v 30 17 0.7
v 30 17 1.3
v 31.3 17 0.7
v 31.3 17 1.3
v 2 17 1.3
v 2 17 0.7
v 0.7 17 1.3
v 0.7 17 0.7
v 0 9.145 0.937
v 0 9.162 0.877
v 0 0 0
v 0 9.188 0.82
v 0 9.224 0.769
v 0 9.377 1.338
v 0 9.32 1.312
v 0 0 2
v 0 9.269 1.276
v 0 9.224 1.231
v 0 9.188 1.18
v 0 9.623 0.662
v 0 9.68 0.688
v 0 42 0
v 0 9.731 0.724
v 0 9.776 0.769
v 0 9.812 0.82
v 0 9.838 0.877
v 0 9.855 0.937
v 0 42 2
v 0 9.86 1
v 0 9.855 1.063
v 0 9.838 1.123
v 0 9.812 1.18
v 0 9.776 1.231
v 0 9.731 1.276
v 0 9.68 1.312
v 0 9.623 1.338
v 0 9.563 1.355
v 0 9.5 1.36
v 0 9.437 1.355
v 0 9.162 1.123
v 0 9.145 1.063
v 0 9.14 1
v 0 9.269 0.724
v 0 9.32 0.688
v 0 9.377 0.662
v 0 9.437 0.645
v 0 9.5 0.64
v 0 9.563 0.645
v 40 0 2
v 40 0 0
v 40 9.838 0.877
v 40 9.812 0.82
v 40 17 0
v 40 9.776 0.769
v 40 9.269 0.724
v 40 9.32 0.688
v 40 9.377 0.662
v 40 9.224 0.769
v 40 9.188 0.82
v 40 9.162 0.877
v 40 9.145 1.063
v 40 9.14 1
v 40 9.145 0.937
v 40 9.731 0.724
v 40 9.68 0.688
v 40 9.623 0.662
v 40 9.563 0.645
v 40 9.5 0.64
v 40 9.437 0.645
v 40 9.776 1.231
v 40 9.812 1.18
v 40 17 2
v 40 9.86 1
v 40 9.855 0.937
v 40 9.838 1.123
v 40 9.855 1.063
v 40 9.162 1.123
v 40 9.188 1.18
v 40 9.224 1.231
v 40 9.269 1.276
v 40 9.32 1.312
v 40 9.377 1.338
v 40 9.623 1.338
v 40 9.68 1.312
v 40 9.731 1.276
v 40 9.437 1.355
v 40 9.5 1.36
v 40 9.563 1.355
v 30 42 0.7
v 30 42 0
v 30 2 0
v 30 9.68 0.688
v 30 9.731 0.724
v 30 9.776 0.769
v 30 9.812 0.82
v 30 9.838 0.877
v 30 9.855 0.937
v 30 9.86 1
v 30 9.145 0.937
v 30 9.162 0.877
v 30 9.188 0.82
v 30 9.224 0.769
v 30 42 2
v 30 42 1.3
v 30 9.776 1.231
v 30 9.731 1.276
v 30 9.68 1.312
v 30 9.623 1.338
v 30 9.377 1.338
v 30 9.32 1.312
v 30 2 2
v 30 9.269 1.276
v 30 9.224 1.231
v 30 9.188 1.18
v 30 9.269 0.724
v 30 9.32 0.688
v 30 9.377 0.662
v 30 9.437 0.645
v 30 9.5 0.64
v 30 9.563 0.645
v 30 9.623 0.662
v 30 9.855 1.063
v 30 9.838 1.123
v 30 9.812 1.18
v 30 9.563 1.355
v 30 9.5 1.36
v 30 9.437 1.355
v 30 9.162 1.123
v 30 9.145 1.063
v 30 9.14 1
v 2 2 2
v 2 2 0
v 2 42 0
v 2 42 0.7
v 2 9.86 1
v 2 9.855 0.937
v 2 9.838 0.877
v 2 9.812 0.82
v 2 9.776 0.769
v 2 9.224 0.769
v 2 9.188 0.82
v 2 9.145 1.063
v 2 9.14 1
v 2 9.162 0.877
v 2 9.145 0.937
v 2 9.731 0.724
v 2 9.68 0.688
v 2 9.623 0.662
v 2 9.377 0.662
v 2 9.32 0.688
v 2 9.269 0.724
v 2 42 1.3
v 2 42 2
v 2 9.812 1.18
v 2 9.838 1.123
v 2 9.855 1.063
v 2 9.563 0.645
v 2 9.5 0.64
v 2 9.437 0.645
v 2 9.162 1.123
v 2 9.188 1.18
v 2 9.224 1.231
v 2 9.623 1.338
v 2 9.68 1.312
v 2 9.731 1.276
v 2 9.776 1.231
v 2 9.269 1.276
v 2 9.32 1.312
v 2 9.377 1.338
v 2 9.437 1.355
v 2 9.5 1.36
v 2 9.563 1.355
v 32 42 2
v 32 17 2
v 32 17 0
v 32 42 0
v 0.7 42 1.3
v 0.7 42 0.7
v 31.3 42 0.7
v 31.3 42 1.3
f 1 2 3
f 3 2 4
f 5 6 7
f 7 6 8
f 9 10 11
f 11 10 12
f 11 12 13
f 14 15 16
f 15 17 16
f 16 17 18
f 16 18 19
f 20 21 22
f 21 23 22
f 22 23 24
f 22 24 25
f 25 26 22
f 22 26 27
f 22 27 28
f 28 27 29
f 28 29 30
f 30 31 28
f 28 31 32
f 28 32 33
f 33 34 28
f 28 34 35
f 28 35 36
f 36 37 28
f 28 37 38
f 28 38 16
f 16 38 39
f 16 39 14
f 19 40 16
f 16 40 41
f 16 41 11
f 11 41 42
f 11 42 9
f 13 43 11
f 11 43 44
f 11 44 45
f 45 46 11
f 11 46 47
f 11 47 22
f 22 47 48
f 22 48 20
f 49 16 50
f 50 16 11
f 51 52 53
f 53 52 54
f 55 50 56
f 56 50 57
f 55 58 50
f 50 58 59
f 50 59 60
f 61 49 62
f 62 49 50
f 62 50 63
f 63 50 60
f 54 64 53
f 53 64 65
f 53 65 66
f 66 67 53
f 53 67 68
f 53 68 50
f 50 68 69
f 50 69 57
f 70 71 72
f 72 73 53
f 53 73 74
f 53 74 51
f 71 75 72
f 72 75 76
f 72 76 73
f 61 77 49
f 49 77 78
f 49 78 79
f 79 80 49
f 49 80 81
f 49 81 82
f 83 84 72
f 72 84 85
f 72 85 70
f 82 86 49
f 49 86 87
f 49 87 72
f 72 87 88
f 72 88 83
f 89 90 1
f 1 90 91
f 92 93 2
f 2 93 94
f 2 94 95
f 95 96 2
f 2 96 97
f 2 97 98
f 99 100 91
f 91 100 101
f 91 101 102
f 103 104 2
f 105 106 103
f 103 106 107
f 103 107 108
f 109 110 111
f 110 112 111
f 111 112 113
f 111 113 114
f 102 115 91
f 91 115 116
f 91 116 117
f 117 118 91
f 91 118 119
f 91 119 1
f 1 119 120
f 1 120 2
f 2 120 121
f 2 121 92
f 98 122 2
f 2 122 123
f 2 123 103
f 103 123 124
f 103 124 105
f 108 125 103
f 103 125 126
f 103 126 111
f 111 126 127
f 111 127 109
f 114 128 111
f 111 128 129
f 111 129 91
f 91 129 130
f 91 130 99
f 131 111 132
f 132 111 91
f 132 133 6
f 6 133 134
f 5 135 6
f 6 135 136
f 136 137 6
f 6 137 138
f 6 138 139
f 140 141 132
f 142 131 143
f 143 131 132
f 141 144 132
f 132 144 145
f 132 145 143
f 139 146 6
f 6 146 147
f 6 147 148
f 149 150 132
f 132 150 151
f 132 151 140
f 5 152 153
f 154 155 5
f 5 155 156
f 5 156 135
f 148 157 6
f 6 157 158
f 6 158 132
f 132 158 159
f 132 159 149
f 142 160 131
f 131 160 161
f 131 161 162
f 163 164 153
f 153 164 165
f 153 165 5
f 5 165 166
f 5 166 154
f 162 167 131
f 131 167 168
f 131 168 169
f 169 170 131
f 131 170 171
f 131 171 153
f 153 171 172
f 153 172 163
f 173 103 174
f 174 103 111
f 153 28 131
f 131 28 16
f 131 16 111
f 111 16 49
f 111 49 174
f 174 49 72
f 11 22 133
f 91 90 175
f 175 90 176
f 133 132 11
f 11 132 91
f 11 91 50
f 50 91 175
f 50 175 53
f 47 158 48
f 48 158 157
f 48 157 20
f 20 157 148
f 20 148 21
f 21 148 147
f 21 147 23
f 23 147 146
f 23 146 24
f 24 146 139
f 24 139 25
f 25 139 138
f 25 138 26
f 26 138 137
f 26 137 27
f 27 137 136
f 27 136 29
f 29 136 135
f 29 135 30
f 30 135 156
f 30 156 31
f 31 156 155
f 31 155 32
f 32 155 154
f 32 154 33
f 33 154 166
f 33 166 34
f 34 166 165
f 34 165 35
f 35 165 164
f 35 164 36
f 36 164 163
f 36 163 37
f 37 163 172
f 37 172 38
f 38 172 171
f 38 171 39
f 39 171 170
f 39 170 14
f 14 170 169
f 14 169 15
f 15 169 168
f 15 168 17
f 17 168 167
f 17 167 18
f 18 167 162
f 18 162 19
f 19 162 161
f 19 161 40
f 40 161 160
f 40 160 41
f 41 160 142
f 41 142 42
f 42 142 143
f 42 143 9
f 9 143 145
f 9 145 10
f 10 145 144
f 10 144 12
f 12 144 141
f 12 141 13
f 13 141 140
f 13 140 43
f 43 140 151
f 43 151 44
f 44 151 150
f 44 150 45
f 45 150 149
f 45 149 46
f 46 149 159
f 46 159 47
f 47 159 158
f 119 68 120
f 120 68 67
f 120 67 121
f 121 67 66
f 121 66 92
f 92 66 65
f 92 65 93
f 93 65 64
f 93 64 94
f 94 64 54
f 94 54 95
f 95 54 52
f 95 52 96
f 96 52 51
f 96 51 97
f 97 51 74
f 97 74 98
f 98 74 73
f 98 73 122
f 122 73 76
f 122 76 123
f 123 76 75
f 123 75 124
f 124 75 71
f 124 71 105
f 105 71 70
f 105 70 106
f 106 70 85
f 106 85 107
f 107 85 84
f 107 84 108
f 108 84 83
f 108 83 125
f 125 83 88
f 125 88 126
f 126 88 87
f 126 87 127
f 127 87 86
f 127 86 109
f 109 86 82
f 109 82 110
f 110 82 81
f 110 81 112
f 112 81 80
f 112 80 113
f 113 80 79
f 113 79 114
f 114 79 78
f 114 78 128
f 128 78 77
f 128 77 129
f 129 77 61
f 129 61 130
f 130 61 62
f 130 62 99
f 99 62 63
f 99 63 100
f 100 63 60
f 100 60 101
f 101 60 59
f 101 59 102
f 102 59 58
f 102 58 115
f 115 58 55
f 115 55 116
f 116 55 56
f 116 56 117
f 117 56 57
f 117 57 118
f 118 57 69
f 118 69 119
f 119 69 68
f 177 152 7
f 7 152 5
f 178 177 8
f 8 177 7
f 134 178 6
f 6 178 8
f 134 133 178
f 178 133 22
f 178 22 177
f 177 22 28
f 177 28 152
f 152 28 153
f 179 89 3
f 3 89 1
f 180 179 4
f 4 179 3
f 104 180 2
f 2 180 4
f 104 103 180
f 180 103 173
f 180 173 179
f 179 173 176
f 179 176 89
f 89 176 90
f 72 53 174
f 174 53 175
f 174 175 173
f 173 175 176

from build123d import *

# Parameters (mm, degrees)
BOSS_EXTRUDE1_DEPTH     = 2
SKETCH2_R               = 0.36
CUT_EXTRUDE1_DEPTH      = 1
CUT_EXTRUDE1_DEPTH_BACK = 41
BOSS_EXTRUDE2_DEPTH     = 25
BOSS_EXTRUDE3_DEPTH     = 25
CUT_EXTRUDE2_REACH      = 4
SKETCH5_W               = 8
SKETCH5_H               = 25


with BuildPart() as part:
    # Sketch1 → Boss-Extrude1 (new body)
    with BuildSketch(Plane.XY):
        Polygon((2, 17), (2, 2), (30, 2), (30, 17), (40, 17), (40, 0), (0, 0), (0, 17), align=None)
    extrude(amount=BOSS_EXTRUDE1_DEPTH)

    # Sketch2 → Cut-Extrude1 (cut, two sides)
    with BuildSketch(Plane(origin=(40, 0, 0), x_dir=(0, 0, -1), z_dir=(1, 0, 0))) as cut_extrude1_sk:
        with Locations((-1, 9.5)):
            Circle(SKETCH2_R)
    extrude(amount=CUT_EXTRUDE1_DEPTH, mode=Mode.SUBTRACT)
    extrude(cut_extrude1_sk.sketch, amount=-CUT_EXTRUDE1_DEPTH_BACK, mode=Mode.SUBTRACT)

    # Sketch3 → Boss-Extrude2 (add)
    with BuildSketch(Plane(origin=(0, 17, 0), x_dir=(1, 0, 0), z_dir=(0, 1, 0))):
        Polygon((0, -2), (2, -2), (2, -1.3), (0.7, -1.3), (0.7, -0.7), (2, -0.7), (2, 0), (0, 0), align=None)
    extrude(amount=BOSS_EXTRUDE2_DEPTH)

    # Sketch4 → Boss-Extrude3 (add)
    with BuildSketch(Plane(origin=(0, 17, 0), x_dir=(1, 0, 0), z_dir=(0, 1, 0))):
        Polygon((30, -2), (40, -2), (40, 0), (30, 0), (30, -0.7), (31.3, -0.7), (31.3, -1.3), (30, -1.3), align=None)
    extrude(amount=BOSS_EXTRUDE3_DEPTH)

    # Sketch5 → Cut-Extrude2 (cut, up to next)
    with BuildSketch(Plane.XY.offset(2), mode=Mode.PRIVATE) as cut_extrude2_sk1:
        with Locations((36, 29.5)):
            Rectangle(SKETCH5_W, SKETCH5_H)
    cut_extrude2_tool1 = extrude(cut_extrude2_sk1.sketch, amount=-CUT_EXTRUDE2_REACH, mode=Mode.PRIVATE) & part.part
    add(cut_extrude2_tool1.solids().sort_by_distance((36, 29.5, 2))[0], mode=Mode.SUBTRACT)


solid = part.part
